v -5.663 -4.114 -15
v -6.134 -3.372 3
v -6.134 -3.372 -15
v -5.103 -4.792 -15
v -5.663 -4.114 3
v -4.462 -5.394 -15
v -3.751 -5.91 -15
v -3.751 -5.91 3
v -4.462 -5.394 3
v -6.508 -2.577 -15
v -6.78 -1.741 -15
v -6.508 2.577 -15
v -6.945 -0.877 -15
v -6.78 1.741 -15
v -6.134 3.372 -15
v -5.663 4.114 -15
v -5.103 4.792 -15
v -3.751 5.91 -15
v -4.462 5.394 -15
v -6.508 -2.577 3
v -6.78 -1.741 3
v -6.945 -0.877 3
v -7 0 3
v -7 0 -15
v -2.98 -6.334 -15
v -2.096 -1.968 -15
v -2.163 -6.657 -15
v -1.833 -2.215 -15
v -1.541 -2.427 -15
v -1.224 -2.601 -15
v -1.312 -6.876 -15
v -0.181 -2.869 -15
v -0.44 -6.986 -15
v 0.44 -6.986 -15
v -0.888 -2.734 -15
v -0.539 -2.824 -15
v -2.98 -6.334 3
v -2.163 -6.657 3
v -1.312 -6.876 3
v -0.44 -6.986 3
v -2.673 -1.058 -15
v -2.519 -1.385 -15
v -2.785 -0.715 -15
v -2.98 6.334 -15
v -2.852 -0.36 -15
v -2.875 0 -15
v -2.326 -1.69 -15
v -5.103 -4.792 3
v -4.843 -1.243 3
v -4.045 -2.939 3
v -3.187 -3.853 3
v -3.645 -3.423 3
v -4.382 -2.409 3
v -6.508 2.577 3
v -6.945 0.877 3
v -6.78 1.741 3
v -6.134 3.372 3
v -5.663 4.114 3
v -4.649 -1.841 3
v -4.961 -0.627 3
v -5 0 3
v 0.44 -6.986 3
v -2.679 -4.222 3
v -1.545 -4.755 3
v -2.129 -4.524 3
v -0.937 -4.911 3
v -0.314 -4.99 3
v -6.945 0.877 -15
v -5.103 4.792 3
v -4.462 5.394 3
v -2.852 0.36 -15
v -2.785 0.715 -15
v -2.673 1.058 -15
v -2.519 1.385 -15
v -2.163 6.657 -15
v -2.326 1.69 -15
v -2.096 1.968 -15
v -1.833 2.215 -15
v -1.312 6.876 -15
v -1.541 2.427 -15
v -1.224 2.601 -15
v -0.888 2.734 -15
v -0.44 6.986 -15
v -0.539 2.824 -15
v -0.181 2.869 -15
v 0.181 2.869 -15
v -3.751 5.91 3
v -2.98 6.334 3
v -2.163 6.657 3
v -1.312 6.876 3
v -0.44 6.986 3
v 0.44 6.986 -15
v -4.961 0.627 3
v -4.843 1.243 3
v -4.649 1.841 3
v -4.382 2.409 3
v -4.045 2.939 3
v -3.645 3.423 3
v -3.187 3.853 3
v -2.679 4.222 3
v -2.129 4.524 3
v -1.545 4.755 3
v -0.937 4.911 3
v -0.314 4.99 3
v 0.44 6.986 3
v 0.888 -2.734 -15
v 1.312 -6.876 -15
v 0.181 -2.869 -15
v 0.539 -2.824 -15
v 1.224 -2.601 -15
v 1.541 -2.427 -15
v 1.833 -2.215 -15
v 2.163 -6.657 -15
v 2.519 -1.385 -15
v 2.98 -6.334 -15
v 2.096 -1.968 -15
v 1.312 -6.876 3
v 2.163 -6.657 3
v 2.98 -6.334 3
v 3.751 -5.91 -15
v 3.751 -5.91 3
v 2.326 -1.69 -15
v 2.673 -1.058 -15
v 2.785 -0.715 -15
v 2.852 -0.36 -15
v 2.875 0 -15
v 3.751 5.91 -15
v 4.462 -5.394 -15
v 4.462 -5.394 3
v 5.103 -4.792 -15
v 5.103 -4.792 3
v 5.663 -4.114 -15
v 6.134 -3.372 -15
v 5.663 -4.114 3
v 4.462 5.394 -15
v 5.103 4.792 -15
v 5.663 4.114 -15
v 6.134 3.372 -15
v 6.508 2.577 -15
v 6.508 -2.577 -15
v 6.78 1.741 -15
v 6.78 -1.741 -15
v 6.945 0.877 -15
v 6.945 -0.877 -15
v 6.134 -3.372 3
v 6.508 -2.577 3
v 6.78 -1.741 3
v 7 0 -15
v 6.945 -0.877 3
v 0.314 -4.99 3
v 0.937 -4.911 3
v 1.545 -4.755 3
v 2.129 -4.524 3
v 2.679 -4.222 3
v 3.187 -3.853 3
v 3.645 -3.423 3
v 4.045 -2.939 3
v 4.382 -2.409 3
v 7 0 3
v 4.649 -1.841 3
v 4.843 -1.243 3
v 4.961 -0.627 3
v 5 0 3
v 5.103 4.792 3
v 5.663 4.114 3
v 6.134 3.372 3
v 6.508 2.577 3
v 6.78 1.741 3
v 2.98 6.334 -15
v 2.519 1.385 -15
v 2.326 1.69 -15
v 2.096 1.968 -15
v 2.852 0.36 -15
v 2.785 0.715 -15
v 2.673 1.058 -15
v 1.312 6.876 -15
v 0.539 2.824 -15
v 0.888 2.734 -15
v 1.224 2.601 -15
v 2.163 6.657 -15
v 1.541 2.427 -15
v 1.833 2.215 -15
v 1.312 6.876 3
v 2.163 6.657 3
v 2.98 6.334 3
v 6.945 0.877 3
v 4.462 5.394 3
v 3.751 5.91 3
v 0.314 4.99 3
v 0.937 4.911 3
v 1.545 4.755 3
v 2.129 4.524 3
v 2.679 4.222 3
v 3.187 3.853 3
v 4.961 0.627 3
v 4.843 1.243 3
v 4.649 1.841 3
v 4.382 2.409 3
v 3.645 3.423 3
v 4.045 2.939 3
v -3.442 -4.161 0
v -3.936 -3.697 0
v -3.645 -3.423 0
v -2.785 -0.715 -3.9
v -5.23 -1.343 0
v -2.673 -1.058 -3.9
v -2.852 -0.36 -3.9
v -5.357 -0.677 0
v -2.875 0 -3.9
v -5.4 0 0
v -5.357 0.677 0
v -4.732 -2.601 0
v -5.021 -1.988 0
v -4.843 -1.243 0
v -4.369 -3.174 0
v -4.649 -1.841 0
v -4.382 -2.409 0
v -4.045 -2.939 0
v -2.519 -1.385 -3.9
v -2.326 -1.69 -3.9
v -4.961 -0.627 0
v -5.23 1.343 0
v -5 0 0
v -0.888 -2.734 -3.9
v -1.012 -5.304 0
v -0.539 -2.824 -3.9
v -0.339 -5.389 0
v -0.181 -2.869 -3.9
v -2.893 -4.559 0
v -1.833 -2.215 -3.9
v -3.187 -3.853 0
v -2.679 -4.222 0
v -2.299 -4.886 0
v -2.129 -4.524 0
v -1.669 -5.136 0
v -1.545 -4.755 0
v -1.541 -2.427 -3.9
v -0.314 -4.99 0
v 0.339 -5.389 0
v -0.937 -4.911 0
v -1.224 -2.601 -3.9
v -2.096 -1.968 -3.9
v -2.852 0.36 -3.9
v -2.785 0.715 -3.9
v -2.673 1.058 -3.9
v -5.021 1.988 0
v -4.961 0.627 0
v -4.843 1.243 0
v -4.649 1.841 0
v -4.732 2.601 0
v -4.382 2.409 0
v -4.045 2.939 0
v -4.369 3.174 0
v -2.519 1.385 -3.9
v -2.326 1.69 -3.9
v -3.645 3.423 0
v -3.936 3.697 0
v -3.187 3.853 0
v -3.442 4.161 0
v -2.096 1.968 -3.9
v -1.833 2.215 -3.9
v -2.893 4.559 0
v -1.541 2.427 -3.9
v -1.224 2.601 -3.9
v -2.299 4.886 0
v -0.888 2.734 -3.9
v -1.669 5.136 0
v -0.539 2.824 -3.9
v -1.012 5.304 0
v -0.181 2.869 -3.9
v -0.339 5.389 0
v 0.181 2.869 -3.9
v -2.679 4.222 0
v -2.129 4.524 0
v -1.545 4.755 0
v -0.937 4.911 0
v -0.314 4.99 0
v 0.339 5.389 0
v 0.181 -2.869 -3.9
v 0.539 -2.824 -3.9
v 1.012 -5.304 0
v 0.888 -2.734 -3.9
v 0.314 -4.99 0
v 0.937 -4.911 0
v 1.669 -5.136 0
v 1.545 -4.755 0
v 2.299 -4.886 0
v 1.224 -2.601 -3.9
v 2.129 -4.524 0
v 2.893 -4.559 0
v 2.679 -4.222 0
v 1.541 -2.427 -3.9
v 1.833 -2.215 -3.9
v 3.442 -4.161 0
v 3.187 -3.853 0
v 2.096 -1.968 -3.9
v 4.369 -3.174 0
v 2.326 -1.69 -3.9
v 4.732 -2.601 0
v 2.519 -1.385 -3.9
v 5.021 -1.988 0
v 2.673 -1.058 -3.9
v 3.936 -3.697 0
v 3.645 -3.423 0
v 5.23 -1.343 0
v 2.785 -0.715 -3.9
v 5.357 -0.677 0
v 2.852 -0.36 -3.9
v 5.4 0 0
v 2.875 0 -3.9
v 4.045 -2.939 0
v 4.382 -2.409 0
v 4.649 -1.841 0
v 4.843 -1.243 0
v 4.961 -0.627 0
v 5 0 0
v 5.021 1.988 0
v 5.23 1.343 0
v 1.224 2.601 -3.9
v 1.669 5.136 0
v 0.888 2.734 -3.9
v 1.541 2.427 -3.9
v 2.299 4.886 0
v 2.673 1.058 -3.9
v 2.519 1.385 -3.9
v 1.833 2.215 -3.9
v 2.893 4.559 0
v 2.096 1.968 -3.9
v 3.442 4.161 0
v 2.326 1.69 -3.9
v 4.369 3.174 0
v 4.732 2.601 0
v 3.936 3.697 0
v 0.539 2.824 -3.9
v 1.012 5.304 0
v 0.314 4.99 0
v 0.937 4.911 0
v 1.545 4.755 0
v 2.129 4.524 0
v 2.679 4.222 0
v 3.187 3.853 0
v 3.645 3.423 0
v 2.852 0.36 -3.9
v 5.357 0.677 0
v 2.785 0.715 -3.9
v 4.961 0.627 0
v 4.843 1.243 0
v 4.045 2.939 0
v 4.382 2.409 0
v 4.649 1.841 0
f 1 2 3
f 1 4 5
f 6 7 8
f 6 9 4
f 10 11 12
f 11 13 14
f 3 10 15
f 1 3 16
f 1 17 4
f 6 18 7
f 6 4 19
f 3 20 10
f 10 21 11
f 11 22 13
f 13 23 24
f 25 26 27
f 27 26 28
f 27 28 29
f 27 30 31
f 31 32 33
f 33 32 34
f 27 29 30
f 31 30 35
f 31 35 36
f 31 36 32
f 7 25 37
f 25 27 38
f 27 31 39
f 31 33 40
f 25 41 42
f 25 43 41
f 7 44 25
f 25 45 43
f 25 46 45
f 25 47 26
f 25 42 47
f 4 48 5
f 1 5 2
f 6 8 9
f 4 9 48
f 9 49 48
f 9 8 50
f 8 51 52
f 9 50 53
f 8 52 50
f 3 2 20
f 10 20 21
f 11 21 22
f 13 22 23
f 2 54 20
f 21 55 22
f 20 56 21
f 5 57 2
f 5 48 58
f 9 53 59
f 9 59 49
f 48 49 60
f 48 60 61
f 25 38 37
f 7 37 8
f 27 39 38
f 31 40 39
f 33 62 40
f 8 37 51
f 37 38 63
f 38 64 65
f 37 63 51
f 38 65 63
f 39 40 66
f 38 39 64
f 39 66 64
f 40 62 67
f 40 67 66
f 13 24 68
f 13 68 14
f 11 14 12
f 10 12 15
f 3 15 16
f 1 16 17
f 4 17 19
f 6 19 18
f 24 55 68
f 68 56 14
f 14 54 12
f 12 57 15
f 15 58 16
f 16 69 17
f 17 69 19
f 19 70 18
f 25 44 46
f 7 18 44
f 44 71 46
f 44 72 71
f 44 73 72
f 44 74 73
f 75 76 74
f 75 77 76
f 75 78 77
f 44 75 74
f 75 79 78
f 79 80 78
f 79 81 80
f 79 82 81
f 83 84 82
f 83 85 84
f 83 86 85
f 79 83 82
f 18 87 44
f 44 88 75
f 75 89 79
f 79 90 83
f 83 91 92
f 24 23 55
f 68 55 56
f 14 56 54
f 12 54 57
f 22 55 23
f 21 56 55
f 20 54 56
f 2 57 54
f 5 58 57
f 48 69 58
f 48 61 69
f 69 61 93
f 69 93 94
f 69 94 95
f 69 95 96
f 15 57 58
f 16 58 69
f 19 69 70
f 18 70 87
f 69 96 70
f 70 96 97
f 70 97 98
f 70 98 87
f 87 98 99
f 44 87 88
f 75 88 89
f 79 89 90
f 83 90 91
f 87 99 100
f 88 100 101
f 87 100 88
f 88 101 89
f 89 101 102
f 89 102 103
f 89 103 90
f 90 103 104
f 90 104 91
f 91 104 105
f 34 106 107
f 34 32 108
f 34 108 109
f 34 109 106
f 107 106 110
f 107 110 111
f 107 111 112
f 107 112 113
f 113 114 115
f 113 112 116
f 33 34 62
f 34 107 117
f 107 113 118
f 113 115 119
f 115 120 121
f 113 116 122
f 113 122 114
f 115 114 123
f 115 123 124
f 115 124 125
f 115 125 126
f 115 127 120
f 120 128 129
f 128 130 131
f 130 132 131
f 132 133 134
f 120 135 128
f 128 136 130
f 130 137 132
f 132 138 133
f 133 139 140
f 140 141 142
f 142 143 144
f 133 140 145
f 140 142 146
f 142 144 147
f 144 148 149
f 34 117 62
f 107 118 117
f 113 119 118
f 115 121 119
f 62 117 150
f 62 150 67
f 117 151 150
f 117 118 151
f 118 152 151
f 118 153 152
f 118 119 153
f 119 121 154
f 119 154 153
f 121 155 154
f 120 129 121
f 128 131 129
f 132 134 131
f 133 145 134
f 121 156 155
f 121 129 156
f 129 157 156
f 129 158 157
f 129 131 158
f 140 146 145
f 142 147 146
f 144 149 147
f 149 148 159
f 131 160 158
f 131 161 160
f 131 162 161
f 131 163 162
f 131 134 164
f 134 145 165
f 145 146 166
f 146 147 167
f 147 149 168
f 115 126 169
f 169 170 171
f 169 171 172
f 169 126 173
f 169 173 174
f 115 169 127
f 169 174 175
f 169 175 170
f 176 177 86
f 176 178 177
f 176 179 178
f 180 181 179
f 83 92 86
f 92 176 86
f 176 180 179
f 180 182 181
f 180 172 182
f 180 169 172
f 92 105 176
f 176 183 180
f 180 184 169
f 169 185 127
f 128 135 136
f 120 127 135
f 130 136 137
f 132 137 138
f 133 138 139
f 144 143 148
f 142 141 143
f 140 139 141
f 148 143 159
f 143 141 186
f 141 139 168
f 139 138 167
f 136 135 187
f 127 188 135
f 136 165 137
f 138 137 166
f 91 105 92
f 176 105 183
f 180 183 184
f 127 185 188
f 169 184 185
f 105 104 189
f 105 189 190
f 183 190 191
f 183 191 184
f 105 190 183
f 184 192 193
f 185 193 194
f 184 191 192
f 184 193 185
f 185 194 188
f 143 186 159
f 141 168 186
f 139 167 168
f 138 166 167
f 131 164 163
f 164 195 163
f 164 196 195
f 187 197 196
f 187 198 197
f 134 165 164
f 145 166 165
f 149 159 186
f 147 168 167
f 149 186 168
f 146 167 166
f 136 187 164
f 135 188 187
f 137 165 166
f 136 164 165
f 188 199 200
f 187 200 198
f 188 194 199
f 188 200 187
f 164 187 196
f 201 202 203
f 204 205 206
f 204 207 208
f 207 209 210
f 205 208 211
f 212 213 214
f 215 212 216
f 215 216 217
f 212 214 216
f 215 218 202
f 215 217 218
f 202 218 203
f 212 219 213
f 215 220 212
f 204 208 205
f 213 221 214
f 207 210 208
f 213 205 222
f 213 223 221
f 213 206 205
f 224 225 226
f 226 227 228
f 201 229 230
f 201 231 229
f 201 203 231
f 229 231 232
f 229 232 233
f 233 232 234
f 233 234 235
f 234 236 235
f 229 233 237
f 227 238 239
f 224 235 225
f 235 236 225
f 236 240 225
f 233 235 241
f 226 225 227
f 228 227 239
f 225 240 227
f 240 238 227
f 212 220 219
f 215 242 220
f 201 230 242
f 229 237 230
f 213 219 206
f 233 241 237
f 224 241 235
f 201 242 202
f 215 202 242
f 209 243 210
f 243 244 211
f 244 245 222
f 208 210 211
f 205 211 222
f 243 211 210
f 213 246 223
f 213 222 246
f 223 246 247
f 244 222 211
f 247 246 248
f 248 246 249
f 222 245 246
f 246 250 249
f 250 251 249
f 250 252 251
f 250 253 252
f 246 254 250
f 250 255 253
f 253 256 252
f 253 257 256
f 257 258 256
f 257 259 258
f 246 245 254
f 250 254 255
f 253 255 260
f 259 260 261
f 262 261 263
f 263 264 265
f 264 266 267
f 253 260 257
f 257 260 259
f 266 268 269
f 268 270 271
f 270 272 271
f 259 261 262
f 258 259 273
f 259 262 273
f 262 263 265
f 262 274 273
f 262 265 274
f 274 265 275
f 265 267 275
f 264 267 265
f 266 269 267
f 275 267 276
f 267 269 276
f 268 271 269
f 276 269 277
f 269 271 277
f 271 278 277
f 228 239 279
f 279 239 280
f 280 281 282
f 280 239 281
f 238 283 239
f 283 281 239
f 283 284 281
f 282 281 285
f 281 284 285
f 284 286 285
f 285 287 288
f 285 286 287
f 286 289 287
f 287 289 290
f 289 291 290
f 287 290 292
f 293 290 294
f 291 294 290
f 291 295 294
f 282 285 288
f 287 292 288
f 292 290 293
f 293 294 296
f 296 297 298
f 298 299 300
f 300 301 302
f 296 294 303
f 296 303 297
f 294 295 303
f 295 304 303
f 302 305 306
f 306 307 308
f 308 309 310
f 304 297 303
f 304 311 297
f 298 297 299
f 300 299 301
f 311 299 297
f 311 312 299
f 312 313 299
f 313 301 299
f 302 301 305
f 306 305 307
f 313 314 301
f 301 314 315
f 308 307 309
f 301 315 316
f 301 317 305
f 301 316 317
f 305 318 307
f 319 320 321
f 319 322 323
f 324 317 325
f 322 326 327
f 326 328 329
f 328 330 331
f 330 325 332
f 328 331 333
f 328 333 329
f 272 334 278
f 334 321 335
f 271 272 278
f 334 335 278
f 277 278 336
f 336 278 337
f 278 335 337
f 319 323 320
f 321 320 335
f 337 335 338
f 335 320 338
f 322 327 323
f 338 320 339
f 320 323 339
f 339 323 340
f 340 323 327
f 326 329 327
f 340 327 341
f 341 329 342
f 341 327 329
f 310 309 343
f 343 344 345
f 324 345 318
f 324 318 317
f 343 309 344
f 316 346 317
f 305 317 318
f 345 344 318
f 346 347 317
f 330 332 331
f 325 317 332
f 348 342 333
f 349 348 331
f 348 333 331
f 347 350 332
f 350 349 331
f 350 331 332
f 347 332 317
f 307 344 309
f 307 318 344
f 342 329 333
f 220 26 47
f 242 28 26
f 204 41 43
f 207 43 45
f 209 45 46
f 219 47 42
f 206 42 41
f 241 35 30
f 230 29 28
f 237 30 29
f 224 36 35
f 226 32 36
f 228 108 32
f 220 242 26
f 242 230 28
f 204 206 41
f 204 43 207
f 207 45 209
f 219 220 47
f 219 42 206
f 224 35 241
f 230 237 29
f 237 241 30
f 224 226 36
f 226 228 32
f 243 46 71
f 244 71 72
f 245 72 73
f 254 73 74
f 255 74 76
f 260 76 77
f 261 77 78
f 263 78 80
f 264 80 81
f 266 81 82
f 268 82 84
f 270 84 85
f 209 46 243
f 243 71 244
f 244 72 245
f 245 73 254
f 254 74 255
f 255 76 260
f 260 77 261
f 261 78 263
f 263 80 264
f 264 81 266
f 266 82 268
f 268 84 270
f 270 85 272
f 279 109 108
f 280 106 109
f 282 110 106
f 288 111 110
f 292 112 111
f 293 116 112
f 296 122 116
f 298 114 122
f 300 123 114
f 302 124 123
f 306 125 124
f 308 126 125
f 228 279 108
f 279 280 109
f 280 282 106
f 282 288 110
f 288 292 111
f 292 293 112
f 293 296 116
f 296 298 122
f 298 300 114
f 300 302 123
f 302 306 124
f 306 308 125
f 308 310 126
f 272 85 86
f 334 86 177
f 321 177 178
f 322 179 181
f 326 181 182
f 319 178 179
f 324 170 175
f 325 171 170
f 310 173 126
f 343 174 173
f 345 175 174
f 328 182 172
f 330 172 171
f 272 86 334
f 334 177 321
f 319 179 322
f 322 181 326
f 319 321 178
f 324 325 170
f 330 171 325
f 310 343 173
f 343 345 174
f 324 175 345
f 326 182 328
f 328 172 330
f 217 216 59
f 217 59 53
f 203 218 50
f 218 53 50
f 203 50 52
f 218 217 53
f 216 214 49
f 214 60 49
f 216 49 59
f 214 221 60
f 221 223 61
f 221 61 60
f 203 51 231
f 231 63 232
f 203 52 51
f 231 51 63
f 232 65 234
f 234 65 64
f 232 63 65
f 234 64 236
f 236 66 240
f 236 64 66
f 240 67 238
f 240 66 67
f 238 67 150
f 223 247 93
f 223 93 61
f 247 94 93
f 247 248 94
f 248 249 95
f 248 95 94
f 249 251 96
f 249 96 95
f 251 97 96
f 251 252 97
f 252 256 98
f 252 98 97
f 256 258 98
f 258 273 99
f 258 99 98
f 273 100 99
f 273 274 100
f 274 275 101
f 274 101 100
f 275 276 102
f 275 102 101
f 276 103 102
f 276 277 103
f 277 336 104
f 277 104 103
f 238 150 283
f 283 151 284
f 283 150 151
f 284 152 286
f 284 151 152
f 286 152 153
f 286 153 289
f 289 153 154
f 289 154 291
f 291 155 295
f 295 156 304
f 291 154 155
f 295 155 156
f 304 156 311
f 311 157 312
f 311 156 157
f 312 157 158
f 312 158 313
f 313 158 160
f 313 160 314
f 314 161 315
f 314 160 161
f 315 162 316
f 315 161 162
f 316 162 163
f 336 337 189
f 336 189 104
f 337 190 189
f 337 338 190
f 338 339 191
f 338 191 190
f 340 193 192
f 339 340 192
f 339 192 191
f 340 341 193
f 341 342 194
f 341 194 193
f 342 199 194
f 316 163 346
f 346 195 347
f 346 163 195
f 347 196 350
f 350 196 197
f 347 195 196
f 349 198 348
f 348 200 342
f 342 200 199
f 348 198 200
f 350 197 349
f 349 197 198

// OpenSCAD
$fn = 50;

difference() {
	union() {
		translate(v = [0, 0, -15.0]) {
			cylinder(h = 18, r = 7.0);
		}
		#translate(v = [0, 0, -18.0]) {
			cylinder(h = 18, r = 2.875);
		}
	}
	union() {
		translate(v = [0, 0, 0]) {
			rotate(a = [0, 0, 0]) {
				difference() {
					union() {
						translate(v = [0, 0, -18.0]) {
							cylinder(h = 18, r = 2.6);
						}
						translate(v = [0, 0, -3.9]) {
							cylinder(h = 3.9, r1 = 2.875, r2 = 5.4);
						}
						translate(v = [0, 0, -18.0]) {
							cylinder(h = 18, r = 2.875);
						}
						translate(v = [0, 0, -18.0]) {
							cylinder(h = 18, r = 2.6);
						}
					}
					union();
				}
			}
		}
		#cylinder(h = 3, r = 5.0);
	}
}
